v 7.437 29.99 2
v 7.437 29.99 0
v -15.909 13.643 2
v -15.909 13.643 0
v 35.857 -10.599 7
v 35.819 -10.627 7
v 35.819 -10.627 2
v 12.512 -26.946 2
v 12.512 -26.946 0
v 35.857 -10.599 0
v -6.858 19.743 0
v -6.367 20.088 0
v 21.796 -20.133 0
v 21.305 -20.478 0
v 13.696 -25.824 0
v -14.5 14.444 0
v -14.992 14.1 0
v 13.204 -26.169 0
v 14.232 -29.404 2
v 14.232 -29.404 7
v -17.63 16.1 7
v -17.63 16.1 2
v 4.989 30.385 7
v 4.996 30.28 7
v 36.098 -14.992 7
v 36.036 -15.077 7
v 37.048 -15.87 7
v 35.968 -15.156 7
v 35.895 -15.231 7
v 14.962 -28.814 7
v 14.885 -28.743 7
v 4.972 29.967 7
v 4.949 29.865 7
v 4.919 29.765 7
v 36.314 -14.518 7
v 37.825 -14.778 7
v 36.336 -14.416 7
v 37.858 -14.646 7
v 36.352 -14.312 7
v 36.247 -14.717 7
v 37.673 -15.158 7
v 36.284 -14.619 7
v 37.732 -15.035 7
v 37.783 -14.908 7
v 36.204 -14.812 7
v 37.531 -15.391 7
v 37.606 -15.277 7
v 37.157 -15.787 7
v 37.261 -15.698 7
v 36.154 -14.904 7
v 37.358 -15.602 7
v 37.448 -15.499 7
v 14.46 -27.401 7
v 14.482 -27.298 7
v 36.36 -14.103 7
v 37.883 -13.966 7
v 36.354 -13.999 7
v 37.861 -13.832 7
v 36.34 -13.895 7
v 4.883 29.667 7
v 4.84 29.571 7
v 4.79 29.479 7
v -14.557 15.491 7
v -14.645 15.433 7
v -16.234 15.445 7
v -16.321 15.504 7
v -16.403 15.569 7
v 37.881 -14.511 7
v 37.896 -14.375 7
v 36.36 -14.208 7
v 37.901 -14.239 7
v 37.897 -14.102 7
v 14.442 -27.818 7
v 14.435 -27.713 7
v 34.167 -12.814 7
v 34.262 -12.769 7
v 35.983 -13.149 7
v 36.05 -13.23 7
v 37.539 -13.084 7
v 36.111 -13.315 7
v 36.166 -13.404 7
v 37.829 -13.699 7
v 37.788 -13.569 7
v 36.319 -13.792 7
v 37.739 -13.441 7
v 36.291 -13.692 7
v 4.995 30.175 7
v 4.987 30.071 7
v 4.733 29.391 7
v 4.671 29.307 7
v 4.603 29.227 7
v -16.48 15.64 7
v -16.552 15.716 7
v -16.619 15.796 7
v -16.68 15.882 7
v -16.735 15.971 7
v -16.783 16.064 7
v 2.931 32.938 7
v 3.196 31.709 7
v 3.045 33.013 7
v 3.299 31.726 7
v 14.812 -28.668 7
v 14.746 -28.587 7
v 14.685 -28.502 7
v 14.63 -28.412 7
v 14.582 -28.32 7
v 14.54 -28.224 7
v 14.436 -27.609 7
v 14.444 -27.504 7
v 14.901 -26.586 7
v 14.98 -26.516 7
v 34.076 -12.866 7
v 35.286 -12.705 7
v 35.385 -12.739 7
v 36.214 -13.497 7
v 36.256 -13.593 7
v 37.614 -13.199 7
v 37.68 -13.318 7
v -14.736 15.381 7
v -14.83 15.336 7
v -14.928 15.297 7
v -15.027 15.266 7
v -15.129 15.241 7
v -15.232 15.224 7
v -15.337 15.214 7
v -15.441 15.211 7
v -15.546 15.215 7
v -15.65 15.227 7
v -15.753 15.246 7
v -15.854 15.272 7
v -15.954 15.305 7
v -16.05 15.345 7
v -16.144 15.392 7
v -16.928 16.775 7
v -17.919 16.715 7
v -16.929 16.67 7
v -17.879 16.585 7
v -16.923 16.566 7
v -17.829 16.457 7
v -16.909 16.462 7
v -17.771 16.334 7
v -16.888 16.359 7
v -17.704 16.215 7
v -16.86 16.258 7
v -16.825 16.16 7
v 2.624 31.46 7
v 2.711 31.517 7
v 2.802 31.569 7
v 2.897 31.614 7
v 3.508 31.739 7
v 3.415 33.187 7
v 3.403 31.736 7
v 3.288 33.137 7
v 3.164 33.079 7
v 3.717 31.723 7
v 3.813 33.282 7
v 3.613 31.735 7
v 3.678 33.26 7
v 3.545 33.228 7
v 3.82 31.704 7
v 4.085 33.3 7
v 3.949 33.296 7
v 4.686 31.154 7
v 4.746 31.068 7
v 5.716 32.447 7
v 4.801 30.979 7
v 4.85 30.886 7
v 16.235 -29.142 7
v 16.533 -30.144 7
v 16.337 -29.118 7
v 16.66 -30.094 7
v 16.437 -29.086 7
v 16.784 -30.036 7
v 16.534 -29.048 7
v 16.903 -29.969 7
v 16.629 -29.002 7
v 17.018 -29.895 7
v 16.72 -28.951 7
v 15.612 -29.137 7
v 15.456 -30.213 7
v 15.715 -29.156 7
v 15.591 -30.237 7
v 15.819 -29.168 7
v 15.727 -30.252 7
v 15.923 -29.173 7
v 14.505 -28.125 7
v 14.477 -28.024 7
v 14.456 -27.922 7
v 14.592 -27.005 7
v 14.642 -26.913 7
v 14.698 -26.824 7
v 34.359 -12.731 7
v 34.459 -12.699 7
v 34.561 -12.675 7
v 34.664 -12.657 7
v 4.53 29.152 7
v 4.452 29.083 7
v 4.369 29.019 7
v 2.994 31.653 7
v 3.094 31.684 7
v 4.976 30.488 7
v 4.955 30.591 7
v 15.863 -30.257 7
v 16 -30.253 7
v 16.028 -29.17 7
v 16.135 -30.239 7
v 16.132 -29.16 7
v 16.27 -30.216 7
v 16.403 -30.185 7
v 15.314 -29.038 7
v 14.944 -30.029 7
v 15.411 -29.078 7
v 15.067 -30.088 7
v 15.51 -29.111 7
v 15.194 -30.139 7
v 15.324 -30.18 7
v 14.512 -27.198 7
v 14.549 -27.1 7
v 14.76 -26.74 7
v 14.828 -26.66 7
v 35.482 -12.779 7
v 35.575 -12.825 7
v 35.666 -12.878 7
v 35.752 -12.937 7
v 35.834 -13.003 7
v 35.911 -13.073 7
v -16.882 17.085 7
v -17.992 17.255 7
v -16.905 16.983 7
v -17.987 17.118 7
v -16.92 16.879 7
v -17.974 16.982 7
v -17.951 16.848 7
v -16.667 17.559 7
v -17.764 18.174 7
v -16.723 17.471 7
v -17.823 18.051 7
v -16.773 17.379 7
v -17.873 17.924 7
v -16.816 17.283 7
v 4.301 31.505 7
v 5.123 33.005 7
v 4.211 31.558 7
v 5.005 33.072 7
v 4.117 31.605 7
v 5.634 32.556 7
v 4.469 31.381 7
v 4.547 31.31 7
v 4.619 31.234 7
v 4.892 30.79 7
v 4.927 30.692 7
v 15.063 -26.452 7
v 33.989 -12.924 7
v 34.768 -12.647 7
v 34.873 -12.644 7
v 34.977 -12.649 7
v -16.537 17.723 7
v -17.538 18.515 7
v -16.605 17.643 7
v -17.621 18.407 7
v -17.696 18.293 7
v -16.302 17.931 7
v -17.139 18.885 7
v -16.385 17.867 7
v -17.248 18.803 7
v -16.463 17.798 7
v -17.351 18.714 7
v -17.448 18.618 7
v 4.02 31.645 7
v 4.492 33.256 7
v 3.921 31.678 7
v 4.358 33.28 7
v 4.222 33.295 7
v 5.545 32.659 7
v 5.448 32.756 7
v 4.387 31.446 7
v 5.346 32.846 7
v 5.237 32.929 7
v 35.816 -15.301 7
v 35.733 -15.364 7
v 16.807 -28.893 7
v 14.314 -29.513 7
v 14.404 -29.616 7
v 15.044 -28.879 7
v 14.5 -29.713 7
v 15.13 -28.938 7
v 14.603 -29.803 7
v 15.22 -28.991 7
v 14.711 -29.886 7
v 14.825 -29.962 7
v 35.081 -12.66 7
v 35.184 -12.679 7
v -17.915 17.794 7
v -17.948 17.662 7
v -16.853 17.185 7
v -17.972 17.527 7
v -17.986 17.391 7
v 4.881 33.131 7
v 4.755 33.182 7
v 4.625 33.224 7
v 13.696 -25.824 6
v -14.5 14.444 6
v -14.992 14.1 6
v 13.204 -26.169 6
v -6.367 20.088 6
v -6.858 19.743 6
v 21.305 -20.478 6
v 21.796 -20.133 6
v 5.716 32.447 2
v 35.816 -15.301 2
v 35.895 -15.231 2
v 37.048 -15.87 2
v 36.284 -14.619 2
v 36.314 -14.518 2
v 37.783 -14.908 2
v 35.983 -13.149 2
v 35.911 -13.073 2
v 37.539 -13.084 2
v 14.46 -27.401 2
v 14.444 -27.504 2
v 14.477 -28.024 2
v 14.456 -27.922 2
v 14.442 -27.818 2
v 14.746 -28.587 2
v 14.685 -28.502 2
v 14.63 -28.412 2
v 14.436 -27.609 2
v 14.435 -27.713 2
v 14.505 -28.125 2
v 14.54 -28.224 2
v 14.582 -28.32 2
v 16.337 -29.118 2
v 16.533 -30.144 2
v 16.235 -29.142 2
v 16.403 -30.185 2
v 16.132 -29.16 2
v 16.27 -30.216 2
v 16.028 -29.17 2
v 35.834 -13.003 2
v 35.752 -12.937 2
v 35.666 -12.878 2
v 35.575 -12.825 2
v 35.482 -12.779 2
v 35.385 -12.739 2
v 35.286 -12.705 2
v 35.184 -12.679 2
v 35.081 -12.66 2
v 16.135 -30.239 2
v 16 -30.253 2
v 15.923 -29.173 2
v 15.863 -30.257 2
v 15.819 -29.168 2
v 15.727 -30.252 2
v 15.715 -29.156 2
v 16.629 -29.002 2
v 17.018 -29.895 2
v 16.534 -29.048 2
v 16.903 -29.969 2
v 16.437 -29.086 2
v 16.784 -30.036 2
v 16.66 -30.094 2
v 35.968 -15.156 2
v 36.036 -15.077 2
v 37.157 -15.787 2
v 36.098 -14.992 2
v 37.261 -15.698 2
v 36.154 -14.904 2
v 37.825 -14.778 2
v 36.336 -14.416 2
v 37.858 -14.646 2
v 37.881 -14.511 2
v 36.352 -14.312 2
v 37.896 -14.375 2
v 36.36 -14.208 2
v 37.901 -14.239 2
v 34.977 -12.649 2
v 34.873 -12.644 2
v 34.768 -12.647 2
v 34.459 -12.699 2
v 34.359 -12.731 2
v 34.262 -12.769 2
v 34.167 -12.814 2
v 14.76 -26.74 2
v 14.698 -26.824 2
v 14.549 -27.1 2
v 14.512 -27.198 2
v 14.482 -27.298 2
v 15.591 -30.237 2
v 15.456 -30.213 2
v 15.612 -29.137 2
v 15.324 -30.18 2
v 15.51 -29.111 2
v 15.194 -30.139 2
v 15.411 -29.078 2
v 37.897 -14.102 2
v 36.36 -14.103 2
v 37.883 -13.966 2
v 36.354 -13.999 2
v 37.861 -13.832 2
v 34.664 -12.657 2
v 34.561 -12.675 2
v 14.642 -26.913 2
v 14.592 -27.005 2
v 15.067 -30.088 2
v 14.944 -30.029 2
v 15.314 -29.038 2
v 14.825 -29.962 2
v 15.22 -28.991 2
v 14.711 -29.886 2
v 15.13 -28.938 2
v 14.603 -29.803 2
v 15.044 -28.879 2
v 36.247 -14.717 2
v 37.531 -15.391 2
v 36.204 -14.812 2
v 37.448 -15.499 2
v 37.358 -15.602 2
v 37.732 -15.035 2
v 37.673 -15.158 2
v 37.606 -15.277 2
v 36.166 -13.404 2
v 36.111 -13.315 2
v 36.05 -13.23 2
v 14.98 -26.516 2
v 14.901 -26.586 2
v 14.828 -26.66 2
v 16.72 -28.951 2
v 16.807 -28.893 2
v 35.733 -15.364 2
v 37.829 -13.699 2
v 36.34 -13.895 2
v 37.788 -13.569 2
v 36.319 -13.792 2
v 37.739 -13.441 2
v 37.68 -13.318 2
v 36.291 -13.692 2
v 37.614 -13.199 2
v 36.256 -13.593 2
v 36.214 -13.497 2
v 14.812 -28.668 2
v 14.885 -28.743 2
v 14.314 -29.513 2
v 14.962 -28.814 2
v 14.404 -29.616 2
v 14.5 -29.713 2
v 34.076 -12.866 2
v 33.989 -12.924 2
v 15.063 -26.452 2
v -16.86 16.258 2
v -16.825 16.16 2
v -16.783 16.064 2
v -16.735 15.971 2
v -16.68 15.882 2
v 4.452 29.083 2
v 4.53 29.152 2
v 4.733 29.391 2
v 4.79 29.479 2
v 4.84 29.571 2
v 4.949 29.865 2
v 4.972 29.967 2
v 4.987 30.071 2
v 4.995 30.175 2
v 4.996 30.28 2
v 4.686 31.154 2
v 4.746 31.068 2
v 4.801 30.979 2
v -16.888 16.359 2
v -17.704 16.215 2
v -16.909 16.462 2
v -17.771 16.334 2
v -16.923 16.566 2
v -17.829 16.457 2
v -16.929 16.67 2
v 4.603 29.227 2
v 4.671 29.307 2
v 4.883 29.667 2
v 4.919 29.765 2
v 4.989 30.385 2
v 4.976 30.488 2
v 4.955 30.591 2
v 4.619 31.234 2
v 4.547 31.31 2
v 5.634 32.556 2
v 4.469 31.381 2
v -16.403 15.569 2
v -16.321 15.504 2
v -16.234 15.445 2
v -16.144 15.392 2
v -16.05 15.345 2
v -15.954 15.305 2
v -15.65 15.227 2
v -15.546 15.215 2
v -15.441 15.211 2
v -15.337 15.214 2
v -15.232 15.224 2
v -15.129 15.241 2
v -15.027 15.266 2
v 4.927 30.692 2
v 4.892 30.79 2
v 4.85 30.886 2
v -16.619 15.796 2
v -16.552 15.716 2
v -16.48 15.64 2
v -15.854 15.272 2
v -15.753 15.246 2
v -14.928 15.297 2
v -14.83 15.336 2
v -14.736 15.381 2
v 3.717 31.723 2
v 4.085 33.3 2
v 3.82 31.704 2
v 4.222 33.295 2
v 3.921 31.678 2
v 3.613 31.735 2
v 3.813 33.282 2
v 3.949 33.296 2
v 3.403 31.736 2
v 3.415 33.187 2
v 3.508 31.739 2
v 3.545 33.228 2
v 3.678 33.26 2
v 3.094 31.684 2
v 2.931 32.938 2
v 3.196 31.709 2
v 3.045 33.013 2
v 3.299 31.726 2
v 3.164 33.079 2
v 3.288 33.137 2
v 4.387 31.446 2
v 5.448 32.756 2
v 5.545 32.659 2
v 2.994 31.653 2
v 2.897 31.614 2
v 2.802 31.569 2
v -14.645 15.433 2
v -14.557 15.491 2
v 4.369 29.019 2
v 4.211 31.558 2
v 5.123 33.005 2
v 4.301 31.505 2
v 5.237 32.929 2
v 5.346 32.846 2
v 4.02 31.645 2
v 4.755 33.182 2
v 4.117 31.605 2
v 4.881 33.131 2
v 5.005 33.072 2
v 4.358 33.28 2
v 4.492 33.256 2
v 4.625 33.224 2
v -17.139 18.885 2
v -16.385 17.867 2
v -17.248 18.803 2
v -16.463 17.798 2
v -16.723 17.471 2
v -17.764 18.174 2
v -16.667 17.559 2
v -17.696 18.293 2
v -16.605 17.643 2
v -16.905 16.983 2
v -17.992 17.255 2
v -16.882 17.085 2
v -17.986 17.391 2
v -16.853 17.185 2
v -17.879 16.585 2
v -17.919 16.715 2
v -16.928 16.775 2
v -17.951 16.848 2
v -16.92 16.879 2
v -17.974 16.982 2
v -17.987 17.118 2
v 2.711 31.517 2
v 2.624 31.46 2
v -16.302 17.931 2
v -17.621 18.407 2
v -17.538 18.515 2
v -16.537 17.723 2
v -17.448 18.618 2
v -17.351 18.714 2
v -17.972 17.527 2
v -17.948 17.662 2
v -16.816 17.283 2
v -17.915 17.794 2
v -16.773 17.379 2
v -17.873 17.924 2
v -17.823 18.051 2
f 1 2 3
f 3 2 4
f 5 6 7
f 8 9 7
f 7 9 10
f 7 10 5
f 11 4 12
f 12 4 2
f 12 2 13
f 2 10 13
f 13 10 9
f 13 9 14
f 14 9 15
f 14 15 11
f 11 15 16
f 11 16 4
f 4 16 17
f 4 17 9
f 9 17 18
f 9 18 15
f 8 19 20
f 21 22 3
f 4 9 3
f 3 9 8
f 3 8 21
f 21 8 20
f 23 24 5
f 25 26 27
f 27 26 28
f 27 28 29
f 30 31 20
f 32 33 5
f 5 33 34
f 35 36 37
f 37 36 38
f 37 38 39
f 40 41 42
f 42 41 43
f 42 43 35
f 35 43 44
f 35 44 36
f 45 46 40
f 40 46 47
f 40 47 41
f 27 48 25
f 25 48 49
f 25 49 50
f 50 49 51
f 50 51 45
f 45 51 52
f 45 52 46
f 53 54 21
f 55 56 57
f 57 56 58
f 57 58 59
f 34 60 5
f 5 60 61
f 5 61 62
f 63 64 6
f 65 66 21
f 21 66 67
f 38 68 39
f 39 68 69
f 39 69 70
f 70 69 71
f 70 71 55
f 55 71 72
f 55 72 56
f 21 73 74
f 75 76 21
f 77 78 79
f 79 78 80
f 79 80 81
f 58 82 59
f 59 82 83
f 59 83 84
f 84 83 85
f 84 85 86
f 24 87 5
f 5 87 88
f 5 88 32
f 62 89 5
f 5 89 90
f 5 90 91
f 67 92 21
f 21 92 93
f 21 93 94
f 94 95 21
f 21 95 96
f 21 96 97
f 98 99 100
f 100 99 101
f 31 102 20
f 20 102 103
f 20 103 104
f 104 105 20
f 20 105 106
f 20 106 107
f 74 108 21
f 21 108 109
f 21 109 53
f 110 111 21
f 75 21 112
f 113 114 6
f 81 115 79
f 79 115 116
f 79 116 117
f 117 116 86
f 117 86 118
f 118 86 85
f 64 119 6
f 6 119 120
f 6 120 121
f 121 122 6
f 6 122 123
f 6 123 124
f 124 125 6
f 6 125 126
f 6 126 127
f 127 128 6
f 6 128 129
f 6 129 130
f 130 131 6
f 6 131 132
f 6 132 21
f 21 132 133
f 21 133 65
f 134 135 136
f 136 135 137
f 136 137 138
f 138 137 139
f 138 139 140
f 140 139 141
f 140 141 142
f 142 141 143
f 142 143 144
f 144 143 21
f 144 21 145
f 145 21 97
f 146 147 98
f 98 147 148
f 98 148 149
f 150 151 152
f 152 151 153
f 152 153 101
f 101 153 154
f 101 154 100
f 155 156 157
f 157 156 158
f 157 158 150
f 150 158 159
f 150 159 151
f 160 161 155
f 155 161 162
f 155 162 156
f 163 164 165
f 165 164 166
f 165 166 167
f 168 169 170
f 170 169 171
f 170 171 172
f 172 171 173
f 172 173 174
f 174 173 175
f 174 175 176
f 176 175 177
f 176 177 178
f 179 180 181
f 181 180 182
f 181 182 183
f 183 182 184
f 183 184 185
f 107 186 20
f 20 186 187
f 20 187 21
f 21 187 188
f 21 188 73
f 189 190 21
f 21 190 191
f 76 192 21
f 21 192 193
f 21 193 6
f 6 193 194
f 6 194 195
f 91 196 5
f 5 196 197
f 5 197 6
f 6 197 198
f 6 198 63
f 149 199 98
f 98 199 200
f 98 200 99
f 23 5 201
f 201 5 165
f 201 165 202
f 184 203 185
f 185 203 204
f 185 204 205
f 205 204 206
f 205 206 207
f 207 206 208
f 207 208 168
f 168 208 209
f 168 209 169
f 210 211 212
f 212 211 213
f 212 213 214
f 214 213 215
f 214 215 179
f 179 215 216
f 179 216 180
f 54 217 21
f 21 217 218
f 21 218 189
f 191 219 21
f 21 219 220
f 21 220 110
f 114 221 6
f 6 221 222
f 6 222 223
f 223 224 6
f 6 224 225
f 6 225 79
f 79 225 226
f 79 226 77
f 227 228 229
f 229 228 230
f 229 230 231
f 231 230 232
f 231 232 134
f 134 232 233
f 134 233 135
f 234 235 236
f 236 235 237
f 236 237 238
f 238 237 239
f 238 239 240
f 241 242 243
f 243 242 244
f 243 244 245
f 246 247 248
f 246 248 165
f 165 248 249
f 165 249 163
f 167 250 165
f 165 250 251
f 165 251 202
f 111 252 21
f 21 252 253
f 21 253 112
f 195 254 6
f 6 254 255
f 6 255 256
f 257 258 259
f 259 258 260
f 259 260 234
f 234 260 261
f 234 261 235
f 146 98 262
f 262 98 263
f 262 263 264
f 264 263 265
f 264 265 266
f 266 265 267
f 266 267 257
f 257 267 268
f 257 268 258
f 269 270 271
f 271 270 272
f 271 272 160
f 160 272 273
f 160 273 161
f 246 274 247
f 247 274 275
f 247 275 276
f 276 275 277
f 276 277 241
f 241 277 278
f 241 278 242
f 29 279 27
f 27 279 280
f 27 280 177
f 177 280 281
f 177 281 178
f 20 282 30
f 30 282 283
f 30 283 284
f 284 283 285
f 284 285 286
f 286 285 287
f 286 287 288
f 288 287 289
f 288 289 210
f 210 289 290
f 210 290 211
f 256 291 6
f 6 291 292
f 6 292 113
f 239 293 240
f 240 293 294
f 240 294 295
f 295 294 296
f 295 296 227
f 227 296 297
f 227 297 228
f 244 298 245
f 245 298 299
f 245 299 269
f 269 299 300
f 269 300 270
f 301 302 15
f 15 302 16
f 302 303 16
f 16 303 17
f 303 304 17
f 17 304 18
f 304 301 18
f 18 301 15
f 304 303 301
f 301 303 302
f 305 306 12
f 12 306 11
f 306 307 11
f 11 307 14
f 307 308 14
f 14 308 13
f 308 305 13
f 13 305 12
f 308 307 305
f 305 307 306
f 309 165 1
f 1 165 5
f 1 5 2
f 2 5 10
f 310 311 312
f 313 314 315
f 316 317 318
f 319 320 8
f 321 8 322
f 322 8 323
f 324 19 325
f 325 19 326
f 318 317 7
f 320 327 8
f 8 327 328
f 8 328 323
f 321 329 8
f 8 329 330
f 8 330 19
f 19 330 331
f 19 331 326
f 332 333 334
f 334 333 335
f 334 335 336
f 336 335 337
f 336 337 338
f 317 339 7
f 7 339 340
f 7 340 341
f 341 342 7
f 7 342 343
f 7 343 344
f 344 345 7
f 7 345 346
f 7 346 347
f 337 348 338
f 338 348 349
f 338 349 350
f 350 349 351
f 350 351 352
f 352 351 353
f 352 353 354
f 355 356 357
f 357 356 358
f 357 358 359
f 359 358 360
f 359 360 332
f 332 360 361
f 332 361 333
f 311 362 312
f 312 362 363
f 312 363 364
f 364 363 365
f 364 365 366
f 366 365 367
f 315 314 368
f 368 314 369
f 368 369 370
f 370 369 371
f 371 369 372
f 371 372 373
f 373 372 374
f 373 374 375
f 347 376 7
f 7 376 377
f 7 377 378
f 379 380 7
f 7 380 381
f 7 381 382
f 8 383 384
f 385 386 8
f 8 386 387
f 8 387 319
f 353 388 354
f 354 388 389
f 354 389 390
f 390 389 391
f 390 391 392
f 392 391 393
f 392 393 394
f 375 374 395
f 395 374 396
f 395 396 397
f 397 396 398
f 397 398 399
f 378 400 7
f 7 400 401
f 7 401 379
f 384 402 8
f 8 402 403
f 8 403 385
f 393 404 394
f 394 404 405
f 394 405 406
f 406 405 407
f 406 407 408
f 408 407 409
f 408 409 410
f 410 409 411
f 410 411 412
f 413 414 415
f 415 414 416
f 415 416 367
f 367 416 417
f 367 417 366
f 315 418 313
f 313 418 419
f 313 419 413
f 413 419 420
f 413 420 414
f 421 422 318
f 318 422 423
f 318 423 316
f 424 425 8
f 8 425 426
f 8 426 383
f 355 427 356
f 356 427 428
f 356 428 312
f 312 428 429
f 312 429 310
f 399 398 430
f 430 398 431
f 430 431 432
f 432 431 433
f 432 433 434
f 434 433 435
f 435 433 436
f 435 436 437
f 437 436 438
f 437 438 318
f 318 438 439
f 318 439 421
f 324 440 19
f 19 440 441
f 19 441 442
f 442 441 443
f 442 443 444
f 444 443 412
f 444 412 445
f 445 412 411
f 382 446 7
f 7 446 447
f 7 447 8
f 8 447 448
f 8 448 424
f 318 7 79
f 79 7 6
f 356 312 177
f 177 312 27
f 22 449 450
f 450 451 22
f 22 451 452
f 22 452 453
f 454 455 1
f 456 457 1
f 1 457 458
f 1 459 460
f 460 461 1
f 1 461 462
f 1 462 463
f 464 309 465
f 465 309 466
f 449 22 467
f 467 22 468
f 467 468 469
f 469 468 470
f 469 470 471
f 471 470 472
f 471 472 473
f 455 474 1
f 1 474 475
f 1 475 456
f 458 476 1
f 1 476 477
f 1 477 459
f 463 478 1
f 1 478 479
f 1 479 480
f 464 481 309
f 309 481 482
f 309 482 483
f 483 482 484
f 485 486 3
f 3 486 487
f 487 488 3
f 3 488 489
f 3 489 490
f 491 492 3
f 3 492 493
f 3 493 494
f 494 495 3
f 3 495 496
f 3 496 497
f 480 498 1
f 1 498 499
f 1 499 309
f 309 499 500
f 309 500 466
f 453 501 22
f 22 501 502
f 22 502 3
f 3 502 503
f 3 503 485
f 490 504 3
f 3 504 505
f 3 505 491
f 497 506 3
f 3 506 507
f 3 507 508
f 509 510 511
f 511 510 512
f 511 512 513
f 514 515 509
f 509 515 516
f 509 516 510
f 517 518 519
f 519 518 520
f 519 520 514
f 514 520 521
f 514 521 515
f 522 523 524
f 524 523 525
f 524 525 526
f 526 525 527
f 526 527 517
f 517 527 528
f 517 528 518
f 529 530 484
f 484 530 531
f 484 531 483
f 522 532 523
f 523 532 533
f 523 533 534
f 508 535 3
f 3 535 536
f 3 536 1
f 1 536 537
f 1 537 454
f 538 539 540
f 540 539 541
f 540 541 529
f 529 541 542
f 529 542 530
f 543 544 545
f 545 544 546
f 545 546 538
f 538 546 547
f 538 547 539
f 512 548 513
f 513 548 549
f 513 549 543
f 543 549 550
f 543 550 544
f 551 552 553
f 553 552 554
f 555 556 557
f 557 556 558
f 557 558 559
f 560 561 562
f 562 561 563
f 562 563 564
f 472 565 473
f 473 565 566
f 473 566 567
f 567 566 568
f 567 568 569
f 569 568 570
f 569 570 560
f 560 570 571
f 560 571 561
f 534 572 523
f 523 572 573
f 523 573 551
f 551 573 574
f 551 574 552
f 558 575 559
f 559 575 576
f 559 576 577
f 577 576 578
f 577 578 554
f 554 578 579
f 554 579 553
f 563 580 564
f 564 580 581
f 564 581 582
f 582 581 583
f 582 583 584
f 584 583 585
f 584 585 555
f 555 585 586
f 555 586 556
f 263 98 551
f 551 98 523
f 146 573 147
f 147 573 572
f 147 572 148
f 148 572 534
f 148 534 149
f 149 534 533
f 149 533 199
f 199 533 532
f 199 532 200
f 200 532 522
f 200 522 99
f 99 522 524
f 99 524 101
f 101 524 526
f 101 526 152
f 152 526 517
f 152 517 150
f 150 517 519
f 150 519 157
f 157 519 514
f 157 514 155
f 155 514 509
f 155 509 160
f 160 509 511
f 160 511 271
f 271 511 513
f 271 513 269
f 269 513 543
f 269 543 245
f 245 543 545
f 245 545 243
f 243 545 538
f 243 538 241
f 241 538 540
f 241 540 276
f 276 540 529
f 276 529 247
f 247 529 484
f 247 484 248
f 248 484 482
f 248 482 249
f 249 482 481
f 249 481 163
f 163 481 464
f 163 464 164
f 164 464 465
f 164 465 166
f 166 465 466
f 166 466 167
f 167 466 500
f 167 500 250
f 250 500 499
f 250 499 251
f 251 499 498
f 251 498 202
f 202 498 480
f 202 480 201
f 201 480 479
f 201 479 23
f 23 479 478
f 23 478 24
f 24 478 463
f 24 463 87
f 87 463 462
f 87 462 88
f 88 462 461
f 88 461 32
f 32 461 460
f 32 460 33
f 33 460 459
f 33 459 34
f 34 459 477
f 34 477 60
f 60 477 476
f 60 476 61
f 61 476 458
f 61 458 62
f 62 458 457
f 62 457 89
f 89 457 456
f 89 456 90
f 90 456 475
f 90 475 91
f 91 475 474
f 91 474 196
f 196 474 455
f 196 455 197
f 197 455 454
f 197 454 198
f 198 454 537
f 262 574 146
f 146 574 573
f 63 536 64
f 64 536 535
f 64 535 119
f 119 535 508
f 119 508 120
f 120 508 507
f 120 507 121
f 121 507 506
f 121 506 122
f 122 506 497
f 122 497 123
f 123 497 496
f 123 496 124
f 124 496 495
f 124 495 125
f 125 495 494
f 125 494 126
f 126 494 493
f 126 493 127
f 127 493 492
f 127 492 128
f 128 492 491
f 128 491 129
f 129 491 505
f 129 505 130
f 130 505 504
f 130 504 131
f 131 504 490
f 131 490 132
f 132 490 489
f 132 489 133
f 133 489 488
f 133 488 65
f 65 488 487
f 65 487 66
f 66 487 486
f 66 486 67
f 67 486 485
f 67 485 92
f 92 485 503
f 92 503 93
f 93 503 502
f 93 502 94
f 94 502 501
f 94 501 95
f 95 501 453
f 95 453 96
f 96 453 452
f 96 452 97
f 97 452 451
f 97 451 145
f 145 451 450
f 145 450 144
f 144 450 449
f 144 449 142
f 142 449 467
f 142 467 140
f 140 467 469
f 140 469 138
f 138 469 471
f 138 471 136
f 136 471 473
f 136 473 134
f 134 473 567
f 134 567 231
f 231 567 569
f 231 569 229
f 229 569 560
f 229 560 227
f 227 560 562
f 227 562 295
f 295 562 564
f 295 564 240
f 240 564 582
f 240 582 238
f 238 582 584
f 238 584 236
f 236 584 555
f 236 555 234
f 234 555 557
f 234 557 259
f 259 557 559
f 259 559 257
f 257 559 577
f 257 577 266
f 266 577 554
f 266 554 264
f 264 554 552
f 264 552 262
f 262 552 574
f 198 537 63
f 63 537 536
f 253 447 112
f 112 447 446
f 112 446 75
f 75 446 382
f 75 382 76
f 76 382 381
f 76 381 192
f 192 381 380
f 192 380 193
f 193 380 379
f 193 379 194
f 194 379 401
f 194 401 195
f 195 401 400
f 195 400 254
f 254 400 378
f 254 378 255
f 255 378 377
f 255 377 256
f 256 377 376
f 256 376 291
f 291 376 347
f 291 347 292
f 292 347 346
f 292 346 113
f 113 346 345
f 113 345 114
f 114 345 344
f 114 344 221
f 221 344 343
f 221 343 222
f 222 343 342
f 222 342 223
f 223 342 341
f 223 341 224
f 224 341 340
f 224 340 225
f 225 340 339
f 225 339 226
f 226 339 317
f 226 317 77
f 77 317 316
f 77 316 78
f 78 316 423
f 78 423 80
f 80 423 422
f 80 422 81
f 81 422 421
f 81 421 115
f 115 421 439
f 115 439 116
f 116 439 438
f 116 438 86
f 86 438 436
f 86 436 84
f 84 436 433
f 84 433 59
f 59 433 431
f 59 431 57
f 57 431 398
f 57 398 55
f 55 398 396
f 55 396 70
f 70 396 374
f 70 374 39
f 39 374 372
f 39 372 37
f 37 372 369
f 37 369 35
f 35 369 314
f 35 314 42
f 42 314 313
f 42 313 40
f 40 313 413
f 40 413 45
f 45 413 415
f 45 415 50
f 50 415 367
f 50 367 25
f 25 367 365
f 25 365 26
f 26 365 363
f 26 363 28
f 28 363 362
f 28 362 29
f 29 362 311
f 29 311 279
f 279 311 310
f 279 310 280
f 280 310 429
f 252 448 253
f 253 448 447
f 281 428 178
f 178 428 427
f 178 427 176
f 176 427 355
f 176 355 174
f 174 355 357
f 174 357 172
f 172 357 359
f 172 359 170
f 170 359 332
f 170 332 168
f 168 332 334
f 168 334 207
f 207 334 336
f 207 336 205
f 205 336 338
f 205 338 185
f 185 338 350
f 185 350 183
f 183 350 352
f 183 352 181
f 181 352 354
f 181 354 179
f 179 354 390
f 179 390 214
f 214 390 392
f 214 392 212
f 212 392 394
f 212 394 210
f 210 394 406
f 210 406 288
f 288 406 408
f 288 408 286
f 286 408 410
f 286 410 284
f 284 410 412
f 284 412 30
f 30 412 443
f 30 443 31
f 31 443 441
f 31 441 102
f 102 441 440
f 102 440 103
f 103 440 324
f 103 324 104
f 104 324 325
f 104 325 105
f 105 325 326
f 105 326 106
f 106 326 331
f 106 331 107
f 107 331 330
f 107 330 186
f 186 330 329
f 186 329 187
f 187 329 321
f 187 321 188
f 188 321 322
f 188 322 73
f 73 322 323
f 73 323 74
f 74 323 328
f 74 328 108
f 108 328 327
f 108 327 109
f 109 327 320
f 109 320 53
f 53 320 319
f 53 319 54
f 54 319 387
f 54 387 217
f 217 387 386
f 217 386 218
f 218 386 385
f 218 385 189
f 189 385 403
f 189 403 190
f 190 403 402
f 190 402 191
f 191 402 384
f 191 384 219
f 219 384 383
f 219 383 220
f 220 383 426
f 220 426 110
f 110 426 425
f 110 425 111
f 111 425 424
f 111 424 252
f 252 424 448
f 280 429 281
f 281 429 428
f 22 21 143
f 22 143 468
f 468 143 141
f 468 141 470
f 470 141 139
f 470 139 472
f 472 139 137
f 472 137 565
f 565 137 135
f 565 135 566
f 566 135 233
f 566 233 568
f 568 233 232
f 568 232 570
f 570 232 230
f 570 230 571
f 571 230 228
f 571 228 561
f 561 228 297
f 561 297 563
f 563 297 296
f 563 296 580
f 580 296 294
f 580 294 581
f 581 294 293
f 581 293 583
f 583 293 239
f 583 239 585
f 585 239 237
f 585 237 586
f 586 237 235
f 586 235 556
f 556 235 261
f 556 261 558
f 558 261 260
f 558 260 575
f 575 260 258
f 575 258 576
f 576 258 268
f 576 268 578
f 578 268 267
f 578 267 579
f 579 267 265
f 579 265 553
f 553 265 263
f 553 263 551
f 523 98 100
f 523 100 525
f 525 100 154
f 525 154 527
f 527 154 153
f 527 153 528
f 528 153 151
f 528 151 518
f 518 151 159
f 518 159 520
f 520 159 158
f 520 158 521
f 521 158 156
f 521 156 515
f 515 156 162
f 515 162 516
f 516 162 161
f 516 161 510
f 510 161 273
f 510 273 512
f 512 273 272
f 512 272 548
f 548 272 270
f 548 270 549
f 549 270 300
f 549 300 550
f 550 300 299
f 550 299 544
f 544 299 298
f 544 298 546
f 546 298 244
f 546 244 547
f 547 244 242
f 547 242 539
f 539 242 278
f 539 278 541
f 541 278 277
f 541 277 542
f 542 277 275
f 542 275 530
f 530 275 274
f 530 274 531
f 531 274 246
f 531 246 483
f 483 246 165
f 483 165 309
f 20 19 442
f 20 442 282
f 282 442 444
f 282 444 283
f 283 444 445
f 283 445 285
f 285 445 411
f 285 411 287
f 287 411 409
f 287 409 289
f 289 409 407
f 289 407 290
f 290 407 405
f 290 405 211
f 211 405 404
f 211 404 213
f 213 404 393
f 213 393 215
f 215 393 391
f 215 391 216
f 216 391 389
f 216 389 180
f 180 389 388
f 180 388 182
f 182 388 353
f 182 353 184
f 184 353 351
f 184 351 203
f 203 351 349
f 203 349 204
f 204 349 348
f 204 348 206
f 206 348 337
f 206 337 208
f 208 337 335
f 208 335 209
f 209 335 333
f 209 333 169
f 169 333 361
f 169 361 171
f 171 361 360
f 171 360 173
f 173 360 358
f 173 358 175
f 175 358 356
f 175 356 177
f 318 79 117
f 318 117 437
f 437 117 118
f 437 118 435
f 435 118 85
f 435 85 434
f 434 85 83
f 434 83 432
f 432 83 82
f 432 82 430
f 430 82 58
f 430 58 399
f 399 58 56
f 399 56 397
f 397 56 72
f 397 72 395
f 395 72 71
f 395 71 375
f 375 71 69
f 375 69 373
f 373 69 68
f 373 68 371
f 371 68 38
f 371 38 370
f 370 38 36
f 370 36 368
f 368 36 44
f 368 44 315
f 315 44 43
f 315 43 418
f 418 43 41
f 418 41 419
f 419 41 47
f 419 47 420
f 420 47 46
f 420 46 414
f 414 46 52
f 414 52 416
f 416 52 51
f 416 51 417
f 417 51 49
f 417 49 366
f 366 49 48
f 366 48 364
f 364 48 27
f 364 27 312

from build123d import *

# Parameters (mm, degrees)
ESTRUSIONE_ESTRUSIONE1_DEPTH  = 7
TAGLIO_ESTRUSIONE1_DEPTH      = 6
SCHIZZO3_W                    = 16
SCHIZZO3_H                    = 7
ESTRUSIONE_ESTRUSIONE2_DEPTH  = 49.55
SCHIZZO6_W                    = 28.452677992
SCHIZZO6_H                    = 5
ESTRUSIONE_ESTRUSIONE5_DEPTH  = 5
SCHIZZO7_W                    = 28.5
SCHIZZO7_H                    = 5
ESTRUSIONE_ESTRUSIONE6_DEPTH  = 5
TAGLIO_ESTRUSIONE8_DEPTH      = 52.802078251
TAGLIO_ESTRUSIONE8_DEPTH_BACK = 52.802078251
RACCORDO1_R                   = 2


with BuildPart() as part:
    # Schizzo1 → Estrusione-Estrusione1 (new body)
    with BuildSketch(Plane.XY):
        Polygon((-15.909106105, 13.642580206), (-5.669705551, 20.812285661), (22.75100687, -19.776698134), (12.511606316, -26.946403588), align=None)
    extrude(amount=ESTRUSIONE_ESTRUSIONE1_DEPTH)

    # Schizzo1<3> → Taglio-Estrusione1 (cut)
    with BuildSketch(Plane.XY):
        Polygon((-14.500401843, 14.443682773), (13.695602758, -25.824384995), (13.204111531, -26.168530857), (-14.991893069, 14.099536911), align=None)
        Polygon((-6.36666227, 20.087622092), (-6.858153497, 19.74347623), (21.304903969, -20.477538154), (21.796395196, -20.133392292), align=None)
    extrude(amount=TAGLIO_ESTRUSIONE1_DEPTH, mode=Mode.SUBTRACT)

    # Schizzo3 → Estrusione-Estrusione2 (add)
    with BuildSketch(Plane(origin=(16.77686077, -23.959840268, 0), x_dir=(-0.8191520442889922, -0.5735764363510456, 0), z_dir=(0.5735764363510455, -0.8191520442889921, 0))):
        with Locations((-15.293085749, -3.5)):
            Rectangle(SCHIZZO3_W, SCHIZZO3_H)
    extrude(amount=-ESTRUSIONE_ESTRUSIONE2_DEPTH)

    # Schizzo6 → Estrusione-Estrusione5 (add)
    with BuildSketch(Plane(origin=(16.77686077, -23.959840268, 0), x_dir=(-0.8191520442889922, -0.5735764363510456, 0), z_dir=(0.5735764363510455, -0.8191520442889921, 0))):
        with Locations((-9.019424745, -4.5)):
            Rectangle(SCHIZZO6_W, SCHIZZO6_H)
    extrude(amount=ESTRUSIONE_ESTRUSIONE5_DEPTH)

    # Schizzo7 → Estrusione-Estrusione6 (add)
    with BuildSketch(Plane(origin=(-11.643851652, 16.629143527, 0), x_dir=(0.8191520442889902, 0.5735764363510484, 0), z_dir=(-0.5735764363510484, 0.8191520442889902, 0))):
        with Locations((9.043085749, -4.5)):
            Rectangle(SCHIZZO7_W, SCHIZZO7_H)
    extrude(amount=ESTRUSIONE_ESTRUSIONE6_DEPTH)

    # Schizzo8 → Taglio-Estrusione8 (cut, two sides: drawn at the far end of the back side and taken through both)
    with BuildSketch(Plane(origin=(0, 0, 2), x_dir=(-1, 0, 0), z_dir=(0, 0, -1)).offset(-TAGLIO_ESTRUSIONE8_DEPTH_BACK)):
        with BuildLine():
            Line((-33.988775508, -12.923786256), (-15.062626046, -26.452245662))
            ThreePointArc((-15.062626046, -26.452245662), (-14.714599039, -28.544822352), (-16.807175729, -28.892849359))
            Line((-16.807175729, -28.892849359), (-35.733325191, -15.364389953))
            ThreePointArc((-35.733325191, -15.364389953), (-36.081352198, -13.271813263), (-33.988775508, -12.923786256))
        make_face()
        with BuildLine():
            Line((-2.62416195, 31.45957899), (16.301987512, 17.931119584))
            ThreePointArc((16.301987512, 17.931119584), (16.650014519, 15.838542895), (14.55743783, 15.490515888))
            Line((14.55743783, 15.490515888), (-4.368711632, 29.018975294))
            ThreePointArc((-4.368711632, 29.018975294), (-4.71673864, 31.111551983), (-2.62416195, 31.45957899))
        make_face()
    extrude(amount=TAGLIO_ESTRUSIONE8_DEPTH + TAGLIO_ESTRUSIONE8_DEPTH_BACK, mode=Mode.SUBTRACT)

    # Raccordo1
    raccordo1_edges = [part.edges().sort_by_distance(p)[0] for p in [
        (15.379488498, -31.04216381, 4.5),
        (38.686557841, -14.722378162, 4.5),
        (-18.776988287, 17.738340428, 4.5),
        (4.568844976, 34.085268864, 4.5),
    ]]
    fillet(raccordo1_edges, radius=RACCORDO1_R)


solid = part.part
